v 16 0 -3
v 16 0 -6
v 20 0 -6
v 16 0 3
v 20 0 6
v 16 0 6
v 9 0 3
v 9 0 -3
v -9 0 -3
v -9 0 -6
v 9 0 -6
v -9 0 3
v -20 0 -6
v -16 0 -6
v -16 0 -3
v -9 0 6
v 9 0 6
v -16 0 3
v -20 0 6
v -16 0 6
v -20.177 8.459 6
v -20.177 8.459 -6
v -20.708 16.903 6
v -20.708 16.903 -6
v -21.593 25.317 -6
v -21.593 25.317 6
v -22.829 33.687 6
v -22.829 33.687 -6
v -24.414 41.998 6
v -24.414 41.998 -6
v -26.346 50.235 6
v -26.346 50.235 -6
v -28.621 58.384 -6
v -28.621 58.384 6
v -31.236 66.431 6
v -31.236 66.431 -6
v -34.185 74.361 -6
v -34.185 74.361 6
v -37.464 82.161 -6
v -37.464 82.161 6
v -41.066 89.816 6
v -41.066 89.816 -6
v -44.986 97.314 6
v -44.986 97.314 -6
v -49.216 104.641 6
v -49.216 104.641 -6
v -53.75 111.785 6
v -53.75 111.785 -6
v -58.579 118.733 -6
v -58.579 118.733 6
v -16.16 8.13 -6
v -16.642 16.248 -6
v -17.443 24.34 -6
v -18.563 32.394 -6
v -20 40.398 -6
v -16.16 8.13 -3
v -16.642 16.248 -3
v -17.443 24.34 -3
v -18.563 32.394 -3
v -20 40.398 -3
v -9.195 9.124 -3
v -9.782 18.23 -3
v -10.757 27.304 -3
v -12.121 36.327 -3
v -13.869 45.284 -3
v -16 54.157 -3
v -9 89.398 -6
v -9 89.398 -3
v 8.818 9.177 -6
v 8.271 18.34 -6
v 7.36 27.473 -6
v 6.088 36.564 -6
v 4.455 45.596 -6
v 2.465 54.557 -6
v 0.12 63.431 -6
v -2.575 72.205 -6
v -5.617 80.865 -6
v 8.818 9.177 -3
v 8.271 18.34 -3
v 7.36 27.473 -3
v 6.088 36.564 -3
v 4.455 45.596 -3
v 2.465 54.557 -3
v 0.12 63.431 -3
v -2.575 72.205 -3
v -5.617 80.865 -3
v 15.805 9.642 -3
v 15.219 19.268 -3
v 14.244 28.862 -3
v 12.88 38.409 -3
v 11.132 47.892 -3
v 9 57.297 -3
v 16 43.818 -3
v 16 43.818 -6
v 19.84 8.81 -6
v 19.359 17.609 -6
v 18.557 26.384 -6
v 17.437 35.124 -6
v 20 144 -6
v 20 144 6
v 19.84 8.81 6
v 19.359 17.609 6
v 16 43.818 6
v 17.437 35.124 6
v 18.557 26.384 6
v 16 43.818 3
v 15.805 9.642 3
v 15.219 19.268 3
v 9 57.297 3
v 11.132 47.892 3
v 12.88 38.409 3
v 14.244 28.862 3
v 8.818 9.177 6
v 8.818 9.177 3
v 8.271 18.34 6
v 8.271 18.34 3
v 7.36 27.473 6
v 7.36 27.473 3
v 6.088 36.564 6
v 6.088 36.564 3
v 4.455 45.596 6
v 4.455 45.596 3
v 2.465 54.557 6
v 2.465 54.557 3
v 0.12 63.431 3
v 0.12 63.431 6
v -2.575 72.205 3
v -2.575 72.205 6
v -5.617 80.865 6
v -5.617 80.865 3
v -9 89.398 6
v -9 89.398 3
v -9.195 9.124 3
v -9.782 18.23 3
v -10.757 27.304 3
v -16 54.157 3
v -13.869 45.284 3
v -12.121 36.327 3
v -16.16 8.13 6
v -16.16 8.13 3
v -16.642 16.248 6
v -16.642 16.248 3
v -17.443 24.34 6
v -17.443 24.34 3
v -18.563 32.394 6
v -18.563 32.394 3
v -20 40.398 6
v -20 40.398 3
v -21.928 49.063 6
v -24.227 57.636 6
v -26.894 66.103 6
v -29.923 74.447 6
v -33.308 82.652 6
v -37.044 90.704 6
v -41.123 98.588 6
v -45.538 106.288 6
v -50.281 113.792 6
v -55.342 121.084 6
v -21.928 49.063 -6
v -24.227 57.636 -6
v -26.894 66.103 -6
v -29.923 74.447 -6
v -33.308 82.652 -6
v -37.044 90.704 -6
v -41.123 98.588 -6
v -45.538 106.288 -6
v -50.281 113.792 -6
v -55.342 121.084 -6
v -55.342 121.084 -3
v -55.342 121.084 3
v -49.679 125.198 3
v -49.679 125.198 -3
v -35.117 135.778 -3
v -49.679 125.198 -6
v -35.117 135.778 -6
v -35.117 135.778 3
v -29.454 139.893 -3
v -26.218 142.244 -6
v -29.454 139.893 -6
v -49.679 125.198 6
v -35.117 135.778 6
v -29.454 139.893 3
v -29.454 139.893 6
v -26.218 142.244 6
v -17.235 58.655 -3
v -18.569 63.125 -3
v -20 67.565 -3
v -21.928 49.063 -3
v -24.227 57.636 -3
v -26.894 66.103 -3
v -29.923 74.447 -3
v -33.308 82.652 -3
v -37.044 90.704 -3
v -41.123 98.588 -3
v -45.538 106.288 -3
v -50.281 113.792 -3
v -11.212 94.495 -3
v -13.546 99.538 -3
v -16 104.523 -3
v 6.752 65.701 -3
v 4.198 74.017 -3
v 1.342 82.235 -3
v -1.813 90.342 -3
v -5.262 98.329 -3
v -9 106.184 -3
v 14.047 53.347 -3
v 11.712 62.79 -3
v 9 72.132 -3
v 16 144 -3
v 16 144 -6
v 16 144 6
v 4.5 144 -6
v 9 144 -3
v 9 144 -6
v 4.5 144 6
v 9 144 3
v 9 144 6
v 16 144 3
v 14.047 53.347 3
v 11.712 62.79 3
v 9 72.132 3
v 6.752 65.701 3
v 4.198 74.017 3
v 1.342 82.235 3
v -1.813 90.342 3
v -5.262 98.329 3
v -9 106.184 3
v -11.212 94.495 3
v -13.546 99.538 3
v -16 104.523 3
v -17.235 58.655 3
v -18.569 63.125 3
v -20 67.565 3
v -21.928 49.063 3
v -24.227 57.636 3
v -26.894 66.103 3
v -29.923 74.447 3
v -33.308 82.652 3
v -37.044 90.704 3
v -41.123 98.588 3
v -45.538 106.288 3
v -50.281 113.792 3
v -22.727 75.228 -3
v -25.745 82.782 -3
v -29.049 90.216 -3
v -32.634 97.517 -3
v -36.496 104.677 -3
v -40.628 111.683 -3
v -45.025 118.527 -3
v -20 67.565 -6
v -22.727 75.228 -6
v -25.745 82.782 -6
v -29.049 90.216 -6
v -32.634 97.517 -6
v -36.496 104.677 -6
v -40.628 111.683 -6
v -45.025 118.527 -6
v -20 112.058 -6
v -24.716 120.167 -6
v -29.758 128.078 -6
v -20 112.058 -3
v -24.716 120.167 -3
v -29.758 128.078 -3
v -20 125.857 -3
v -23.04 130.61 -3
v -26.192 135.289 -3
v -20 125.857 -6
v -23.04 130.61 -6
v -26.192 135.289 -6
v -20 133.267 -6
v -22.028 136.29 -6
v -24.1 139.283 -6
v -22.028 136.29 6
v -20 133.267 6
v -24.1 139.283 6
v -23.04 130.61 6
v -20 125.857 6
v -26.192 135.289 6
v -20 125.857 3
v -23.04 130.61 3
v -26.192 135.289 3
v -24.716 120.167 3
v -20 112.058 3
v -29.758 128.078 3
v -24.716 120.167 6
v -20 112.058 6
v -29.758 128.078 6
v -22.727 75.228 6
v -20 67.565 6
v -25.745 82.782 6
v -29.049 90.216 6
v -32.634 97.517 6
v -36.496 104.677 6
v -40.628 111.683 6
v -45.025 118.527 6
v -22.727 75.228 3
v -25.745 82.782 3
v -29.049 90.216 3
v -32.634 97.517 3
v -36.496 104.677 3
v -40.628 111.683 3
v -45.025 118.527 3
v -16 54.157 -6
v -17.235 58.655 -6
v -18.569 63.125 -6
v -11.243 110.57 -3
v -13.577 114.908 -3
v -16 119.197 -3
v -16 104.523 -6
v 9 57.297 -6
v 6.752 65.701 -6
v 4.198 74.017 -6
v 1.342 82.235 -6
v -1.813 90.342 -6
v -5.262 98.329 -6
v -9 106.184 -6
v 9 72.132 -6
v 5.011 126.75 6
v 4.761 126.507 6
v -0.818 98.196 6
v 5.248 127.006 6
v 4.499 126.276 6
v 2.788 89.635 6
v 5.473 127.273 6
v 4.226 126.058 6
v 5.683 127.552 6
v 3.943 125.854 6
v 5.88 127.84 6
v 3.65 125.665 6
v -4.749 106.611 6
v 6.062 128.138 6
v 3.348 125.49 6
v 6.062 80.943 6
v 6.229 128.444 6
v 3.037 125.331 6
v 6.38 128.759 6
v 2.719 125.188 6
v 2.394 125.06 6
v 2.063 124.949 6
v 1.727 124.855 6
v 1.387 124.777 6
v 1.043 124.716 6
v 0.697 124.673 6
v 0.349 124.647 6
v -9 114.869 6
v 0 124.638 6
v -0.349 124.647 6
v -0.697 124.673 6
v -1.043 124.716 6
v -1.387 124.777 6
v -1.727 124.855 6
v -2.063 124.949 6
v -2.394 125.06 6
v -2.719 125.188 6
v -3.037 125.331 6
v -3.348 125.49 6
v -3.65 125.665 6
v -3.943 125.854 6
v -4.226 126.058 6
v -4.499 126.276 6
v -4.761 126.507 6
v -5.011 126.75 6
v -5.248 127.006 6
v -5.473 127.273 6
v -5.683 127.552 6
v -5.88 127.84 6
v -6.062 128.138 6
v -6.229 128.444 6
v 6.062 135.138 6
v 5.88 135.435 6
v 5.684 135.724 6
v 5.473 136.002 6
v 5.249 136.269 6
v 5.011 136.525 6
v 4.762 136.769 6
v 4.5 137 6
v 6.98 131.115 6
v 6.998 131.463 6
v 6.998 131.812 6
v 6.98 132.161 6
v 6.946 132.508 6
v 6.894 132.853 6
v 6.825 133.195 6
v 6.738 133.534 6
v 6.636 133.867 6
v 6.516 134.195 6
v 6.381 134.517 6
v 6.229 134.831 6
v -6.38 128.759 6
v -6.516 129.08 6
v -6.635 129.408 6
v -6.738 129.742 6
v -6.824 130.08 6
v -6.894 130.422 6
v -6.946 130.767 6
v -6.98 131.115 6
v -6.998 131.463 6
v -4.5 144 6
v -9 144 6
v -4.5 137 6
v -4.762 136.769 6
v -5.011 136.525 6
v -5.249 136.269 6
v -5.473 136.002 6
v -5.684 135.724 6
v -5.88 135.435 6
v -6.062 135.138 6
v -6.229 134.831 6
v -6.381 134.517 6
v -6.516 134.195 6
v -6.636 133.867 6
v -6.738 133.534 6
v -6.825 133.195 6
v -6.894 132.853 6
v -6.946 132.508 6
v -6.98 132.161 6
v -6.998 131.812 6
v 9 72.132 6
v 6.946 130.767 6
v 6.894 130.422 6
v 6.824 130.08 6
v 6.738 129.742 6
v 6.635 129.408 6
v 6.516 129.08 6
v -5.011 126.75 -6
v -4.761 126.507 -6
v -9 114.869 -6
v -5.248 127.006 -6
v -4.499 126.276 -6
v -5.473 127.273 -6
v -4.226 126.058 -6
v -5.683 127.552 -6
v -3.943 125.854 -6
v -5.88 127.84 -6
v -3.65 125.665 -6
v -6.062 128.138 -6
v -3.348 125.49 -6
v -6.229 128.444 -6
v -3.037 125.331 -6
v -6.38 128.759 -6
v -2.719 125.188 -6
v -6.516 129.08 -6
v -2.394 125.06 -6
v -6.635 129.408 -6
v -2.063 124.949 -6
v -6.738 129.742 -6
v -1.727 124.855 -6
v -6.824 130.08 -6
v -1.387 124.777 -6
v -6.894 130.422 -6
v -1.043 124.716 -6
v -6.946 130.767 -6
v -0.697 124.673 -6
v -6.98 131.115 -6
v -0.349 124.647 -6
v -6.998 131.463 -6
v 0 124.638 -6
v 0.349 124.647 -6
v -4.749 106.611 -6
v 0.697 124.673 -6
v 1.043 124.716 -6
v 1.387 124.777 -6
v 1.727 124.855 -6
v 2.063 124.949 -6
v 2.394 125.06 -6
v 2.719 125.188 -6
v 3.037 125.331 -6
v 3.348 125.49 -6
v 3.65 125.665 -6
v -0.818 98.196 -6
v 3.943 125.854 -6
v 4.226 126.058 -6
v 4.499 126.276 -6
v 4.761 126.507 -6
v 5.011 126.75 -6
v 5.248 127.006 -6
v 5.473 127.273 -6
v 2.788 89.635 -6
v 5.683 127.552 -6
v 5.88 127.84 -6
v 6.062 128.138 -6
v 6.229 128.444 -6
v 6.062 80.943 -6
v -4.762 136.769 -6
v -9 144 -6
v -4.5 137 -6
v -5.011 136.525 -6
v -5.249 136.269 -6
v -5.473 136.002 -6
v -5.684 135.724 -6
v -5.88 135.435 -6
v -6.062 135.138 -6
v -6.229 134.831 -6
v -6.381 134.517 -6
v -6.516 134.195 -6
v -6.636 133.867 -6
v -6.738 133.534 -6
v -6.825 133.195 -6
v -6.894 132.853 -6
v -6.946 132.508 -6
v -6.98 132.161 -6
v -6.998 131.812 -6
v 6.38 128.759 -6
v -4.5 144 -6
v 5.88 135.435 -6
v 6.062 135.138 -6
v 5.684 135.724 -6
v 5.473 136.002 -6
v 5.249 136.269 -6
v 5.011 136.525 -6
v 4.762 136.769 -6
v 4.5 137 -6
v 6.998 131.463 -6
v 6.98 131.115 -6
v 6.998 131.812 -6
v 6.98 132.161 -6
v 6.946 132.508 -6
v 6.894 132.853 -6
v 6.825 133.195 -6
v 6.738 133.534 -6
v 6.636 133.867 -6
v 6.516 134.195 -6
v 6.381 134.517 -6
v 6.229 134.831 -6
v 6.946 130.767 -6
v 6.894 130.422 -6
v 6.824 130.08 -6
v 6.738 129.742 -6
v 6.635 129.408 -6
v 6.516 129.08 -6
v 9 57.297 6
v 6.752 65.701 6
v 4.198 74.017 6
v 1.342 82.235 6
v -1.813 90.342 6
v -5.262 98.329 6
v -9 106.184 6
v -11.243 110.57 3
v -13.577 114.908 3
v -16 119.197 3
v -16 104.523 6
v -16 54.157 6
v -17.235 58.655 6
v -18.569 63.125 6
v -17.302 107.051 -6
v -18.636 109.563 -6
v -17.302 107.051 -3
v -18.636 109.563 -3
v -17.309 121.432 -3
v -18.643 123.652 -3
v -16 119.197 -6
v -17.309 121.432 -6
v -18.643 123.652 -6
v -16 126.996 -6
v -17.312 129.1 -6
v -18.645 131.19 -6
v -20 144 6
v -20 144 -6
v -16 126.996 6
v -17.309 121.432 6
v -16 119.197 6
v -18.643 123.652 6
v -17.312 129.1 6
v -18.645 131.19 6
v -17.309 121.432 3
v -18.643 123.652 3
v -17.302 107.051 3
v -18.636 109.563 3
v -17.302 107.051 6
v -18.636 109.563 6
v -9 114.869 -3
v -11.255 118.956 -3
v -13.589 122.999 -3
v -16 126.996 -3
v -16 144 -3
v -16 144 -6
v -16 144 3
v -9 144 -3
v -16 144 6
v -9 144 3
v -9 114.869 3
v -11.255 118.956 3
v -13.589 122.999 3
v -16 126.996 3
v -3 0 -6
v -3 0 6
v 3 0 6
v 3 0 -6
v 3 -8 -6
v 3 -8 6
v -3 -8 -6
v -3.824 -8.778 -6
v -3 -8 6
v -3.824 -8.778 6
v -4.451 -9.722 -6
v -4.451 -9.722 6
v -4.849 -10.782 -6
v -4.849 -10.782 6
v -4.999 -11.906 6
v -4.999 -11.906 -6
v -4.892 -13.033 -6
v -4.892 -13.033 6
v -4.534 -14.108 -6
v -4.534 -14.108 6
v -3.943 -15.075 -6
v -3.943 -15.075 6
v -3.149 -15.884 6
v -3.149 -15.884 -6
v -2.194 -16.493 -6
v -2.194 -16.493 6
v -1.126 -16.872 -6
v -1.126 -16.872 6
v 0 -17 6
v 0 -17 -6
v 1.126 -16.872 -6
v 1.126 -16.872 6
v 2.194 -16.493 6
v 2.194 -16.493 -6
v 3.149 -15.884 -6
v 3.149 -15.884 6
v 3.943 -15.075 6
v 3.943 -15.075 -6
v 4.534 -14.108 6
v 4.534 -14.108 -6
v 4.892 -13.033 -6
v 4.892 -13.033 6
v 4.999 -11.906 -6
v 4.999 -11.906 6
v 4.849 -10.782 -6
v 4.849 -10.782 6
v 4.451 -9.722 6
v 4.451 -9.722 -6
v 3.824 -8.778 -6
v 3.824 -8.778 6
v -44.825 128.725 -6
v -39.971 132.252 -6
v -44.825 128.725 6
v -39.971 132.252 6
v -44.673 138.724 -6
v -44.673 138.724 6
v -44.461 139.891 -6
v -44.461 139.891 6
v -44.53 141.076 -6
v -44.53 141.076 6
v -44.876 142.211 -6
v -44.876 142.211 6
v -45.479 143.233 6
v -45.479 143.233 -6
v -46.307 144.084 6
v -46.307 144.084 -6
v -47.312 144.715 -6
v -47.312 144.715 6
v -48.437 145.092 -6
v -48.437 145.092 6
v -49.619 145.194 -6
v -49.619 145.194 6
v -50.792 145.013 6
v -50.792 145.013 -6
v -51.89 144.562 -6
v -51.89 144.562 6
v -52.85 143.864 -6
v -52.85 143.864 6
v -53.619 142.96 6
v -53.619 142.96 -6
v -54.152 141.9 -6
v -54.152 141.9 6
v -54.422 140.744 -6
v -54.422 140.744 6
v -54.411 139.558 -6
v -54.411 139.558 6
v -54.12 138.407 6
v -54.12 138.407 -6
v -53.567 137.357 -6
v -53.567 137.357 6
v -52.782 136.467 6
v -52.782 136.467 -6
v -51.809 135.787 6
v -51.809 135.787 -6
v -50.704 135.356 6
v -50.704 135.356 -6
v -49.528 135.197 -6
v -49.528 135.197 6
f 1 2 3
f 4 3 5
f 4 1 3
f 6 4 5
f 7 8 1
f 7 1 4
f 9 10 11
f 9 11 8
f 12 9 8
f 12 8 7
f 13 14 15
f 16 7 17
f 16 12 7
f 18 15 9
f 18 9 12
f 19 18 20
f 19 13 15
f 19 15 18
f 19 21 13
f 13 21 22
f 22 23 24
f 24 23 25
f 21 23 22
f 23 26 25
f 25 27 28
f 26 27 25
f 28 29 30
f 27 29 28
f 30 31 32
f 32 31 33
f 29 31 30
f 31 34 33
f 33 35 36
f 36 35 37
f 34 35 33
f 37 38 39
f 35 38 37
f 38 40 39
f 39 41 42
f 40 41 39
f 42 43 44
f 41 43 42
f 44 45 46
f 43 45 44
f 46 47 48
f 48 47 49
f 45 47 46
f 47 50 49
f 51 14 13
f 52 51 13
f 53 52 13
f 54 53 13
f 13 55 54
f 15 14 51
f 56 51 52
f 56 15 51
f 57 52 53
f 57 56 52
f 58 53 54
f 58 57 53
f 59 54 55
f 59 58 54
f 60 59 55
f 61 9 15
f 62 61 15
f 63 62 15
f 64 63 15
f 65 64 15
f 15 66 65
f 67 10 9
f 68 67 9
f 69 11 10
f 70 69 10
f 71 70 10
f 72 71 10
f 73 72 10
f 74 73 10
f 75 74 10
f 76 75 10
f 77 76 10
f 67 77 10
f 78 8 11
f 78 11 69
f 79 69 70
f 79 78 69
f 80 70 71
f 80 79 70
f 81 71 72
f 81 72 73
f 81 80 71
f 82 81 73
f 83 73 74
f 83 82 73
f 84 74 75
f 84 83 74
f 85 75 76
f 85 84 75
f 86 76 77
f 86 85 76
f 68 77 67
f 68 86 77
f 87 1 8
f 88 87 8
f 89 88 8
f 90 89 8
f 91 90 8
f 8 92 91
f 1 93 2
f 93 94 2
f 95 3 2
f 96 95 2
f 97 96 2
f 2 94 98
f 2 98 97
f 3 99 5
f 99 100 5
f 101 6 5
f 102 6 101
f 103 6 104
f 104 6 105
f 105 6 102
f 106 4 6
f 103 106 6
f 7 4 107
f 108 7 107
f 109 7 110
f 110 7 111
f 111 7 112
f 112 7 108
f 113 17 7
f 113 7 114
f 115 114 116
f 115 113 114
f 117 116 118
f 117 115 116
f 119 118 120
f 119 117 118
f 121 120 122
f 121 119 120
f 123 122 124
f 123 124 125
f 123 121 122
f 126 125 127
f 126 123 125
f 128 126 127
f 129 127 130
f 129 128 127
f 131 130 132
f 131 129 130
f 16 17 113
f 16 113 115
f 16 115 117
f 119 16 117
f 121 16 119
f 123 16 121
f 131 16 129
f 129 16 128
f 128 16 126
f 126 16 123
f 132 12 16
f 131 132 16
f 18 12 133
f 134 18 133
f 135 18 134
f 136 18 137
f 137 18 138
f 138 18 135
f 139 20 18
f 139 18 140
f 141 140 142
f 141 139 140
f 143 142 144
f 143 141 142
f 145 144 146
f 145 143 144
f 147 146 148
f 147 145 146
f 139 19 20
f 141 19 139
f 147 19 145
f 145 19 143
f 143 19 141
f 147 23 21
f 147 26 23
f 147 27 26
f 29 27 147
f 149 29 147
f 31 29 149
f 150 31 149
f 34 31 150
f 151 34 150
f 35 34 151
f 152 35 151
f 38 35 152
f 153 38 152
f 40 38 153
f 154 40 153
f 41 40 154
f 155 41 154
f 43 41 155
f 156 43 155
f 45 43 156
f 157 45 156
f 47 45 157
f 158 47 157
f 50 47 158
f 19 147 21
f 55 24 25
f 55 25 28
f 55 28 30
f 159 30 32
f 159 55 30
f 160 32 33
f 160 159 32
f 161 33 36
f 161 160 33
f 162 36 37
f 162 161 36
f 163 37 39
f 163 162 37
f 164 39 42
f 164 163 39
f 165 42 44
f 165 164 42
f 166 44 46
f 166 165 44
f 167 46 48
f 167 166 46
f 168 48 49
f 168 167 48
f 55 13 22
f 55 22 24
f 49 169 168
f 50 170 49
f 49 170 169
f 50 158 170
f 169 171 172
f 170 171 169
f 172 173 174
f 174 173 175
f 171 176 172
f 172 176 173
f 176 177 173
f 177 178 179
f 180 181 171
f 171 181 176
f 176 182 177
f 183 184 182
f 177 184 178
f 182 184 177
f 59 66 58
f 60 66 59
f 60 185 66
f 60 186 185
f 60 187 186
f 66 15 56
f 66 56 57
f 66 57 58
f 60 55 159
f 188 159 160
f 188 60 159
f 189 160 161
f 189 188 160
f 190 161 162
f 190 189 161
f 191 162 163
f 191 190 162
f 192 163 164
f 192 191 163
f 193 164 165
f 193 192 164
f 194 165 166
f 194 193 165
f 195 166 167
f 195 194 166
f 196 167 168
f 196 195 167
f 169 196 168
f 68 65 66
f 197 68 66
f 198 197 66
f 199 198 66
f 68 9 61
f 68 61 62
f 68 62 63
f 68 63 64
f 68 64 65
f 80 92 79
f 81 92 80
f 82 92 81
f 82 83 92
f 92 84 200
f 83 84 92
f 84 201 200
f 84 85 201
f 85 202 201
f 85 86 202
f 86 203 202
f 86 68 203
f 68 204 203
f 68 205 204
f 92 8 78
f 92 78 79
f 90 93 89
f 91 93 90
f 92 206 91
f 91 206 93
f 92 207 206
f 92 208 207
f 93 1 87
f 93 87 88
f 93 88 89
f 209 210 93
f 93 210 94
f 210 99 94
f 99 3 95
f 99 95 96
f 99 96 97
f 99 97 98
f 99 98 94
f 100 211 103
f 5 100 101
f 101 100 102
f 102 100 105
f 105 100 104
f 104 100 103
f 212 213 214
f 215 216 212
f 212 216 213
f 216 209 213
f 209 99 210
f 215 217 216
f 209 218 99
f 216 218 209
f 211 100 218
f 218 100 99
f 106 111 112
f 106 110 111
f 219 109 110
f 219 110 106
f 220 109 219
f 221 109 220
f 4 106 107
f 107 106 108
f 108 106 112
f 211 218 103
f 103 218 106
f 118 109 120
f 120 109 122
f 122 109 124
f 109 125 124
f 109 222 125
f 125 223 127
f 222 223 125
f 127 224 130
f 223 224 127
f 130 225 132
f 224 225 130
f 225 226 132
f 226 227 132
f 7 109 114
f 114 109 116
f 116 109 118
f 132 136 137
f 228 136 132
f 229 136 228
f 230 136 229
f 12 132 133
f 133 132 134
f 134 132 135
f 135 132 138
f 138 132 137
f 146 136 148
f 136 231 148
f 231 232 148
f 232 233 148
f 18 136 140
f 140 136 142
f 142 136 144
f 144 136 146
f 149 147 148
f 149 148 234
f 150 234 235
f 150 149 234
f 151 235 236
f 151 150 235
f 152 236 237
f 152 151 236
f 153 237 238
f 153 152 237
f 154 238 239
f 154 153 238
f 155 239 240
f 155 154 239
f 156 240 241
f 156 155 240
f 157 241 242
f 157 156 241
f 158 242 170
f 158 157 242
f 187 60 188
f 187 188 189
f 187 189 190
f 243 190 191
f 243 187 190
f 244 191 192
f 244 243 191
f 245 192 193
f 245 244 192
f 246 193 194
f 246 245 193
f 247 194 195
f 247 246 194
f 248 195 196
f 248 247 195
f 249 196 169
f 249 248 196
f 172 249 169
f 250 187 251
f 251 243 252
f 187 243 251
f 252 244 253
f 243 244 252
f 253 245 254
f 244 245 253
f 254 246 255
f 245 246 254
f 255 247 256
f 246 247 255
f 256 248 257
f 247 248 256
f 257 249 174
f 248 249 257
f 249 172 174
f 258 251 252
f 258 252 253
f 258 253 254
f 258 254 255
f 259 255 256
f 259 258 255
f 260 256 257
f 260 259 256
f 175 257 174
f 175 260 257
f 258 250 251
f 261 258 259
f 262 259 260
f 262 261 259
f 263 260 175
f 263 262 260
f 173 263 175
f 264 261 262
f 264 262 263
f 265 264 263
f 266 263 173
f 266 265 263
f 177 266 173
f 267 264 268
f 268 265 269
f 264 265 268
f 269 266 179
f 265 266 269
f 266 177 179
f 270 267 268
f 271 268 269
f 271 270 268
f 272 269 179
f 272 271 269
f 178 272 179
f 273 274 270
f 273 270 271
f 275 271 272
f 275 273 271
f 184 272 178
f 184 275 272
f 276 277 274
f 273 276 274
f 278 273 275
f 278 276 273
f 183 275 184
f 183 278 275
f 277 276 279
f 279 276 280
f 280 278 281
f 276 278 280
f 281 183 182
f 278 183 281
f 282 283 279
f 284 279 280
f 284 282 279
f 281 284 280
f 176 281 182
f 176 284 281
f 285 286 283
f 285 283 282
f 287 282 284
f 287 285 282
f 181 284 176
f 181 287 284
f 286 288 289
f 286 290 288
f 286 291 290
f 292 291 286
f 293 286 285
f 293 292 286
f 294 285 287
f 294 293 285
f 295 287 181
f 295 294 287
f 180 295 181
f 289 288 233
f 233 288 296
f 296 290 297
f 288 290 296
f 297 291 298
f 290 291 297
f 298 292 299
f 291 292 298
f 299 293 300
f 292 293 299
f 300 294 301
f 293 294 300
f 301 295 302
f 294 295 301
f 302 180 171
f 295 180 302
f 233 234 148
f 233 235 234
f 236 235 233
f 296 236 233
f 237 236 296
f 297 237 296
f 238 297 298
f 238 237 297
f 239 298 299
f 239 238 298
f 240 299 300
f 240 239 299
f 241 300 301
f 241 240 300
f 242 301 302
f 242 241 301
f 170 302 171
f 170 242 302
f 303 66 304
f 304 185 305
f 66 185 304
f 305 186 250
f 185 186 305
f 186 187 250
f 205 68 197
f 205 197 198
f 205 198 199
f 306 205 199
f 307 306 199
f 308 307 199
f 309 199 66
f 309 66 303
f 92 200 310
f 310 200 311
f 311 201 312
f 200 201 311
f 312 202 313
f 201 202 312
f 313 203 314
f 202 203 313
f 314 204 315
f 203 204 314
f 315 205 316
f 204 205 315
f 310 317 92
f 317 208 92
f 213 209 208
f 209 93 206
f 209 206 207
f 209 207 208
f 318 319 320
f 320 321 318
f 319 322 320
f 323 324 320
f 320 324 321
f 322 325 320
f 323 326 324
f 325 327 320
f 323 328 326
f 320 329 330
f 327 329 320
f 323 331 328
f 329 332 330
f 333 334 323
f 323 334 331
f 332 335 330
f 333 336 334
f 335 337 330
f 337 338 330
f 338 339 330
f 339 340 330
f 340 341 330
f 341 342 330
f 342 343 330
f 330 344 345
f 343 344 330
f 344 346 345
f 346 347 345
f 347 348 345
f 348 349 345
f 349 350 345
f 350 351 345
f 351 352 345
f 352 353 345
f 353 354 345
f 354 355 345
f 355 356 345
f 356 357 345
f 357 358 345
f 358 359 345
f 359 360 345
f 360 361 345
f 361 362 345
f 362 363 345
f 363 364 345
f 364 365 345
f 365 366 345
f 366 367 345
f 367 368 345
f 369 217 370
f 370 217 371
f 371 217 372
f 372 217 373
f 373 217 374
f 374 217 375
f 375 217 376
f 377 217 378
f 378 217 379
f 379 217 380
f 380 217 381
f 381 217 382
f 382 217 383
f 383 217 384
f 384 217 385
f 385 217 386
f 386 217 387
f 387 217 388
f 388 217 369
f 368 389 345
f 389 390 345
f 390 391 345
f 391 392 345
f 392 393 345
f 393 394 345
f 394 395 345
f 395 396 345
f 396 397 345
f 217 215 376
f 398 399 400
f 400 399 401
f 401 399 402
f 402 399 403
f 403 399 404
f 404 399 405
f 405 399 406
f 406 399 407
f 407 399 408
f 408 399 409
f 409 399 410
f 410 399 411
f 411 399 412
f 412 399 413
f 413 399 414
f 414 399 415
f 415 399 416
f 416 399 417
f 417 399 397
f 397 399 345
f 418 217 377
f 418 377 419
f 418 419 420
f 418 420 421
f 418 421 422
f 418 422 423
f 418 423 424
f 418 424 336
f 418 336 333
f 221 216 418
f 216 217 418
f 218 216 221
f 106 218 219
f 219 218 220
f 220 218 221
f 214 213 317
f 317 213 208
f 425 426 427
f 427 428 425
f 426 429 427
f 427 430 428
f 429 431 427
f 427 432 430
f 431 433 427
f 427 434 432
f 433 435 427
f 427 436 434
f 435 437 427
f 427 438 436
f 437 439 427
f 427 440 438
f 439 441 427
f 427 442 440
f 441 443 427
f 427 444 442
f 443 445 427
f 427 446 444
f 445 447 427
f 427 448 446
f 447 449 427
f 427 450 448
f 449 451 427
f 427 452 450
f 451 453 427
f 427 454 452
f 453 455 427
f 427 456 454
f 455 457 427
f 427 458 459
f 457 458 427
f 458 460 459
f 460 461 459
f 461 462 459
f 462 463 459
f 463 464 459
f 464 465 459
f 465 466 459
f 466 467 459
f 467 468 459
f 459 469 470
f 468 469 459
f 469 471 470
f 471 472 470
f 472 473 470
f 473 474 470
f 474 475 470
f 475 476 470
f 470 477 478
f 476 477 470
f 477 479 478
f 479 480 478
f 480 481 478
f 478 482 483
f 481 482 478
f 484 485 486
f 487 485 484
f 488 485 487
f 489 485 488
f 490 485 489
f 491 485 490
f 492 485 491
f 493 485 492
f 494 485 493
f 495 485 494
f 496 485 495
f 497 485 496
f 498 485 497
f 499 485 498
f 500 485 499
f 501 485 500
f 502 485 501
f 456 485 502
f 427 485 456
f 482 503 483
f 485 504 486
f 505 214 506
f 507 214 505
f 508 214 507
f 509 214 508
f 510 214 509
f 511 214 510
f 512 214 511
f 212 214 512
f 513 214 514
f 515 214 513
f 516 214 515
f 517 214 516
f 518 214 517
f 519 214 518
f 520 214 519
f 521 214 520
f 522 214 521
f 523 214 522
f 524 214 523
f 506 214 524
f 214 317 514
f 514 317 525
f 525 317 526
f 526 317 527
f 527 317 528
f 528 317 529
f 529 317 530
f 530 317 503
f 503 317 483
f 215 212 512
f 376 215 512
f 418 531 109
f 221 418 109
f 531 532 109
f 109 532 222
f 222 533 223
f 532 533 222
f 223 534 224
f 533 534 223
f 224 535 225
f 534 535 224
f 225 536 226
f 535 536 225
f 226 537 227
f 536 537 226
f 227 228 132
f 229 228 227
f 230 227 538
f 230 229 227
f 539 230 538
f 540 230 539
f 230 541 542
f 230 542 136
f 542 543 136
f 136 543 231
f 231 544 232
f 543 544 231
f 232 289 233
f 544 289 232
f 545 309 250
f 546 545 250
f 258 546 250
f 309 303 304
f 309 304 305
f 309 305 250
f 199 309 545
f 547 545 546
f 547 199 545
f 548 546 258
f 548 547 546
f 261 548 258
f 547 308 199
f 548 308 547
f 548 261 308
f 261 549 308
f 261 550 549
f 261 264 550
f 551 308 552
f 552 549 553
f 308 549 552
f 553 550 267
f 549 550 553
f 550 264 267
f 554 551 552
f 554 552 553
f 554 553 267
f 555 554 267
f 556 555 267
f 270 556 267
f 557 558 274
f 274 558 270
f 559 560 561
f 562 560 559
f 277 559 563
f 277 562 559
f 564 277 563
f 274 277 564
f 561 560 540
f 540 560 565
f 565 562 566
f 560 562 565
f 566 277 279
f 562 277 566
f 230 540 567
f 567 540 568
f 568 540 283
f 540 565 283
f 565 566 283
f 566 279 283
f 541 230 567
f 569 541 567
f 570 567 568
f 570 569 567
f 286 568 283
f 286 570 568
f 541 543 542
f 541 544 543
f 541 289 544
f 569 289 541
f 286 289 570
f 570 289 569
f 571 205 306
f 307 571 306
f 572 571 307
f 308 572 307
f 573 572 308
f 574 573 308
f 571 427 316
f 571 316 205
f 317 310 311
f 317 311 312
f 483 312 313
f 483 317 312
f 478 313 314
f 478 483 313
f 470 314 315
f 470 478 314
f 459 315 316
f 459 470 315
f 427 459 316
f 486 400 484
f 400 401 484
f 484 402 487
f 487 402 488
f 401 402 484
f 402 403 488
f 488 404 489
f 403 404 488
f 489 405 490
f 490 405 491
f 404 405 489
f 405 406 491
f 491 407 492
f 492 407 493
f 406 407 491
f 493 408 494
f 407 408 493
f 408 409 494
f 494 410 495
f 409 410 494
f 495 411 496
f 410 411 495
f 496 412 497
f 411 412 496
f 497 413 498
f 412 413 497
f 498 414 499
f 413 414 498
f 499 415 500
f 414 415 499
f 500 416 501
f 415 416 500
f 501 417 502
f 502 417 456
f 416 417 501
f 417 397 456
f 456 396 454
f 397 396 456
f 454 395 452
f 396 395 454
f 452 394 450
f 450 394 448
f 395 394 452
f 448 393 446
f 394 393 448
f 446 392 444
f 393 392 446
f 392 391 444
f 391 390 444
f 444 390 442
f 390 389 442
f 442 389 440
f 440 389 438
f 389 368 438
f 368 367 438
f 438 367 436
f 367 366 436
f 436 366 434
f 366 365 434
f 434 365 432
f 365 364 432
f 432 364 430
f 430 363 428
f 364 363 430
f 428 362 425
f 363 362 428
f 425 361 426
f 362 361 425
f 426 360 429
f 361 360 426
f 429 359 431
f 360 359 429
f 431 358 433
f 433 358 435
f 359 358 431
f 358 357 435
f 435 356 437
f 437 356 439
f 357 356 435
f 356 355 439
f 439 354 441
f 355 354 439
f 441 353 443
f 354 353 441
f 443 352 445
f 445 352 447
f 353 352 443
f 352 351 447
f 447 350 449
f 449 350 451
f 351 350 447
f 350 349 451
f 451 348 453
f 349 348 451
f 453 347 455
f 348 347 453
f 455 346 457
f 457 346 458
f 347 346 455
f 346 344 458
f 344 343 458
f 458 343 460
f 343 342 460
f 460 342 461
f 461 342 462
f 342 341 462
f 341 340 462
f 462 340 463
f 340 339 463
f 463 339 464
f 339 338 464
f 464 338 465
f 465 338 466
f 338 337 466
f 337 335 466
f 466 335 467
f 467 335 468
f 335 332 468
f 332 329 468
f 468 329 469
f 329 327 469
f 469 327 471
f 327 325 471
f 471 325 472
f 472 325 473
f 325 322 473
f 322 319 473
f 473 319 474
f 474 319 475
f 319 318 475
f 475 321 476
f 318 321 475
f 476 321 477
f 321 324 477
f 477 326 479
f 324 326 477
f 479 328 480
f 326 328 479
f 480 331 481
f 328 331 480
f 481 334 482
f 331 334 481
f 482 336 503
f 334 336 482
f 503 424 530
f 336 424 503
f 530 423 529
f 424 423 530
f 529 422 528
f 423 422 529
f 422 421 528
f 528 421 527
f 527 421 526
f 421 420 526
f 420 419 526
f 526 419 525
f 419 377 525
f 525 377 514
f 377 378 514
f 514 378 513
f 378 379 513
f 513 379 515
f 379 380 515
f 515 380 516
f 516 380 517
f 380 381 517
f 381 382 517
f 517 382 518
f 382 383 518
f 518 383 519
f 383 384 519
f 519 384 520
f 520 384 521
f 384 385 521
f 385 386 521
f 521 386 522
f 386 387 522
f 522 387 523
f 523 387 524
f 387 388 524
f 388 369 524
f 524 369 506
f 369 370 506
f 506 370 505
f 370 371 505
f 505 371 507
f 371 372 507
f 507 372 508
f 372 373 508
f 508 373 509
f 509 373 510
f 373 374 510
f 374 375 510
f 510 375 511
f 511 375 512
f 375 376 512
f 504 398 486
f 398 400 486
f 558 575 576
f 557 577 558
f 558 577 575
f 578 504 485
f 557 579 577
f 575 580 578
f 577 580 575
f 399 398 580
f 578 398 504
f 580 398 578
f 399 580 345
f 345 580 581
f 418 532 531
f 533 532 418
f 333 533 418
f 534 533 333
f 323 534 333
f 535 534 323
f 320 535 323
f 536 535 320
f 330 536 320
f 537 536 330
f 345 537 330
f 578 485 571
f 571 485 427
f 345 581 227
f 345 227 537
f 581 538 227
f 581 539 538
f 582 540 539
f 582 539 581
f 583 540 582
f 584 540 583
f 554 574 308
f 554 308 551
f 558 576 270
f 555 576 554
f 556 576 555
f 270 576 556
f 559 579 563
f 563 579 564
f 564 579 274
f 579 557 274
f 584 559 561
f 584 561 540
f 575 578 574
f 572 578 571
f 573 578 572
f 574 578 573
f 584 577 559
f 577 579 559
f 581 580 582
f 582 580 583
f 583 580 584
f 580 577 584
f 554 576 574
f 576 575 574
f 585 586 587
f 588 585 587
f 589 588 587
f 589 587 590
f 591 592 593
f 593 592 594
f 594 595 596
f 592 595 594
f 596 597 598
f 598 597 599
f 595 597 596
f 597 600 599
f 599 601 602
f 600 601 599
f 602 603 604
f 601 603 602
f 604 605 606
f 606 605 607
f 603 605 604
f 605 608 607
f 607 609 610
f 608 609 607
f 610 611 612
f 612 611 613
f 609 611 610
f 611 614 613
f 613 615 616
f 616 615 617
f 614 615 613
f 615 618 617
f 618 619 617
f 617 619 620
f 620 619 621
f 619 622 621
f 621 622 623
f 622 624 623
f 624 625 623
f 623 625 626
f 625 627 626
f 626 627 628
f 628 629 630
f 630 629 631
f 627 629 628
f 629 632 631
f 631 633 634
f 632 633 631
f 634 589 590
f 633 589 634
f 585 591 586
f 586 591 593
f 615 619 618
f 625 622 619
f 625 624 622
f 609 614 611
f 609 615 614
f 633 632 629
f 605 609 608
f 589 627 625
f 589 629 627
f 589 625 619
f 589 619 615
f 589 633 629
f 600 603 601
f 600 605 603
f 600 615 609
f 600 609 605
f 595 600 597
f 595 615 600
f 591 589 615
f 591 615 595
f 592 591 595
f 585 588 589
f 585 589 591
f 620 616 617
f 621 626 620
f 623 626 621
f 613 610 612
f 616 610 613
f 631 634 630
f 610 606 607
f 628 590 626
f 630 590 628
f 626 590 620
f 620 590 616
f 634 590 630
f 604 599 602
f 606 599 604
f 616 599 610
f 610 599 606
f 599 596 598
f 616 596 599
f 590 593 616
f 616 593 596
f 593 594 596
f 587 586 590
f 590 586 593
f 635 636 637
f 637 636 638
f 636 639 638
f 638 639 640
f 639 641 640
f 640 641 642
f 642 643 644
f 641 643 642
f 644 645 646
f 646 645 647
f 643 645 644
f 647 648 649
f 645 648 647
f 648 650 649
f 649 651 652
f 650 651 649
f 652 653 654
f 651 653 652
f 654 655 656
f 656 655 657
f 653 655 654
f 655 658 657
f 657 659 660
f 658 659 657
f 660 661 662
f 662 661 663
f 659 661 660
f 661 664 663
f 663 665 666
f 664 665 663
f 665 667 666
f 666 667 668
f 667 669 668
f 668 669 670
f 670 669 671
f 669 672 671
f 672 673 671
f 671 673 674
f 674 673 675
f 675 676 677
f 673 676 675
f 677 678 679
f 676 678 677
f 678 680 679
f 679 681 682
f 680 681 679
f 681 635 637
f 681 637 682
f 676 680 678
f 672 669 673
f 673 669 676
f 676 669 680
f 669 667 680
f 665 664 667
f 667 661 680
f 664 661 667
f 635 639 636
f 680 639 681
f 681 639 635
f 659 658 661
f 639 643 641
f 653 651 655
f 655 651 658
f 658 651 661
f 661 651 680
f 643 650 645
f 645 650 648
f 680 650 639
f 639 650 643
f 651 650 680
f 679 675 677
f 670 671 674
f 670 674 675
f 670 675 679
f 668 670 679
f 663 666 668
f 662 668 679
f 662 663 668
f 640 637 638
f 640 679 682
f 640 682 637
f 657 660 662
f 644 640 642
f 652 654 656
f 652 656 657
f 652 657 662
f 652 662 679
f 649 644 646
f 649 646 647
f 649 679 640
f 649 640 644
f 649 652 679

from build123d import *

# Parameters (mm, degrees)
SKETCH004_W       = 7
SKETCH004_H       = 3
SKETCH005_W       = 7
SKETCH005_H       = 3
SKETCH009_W       = 7
SKETCH009_H       = 3
SKETCH010_W       = 7
SKETCH010_H       = 3
POCKET_DEPTH      = 6.001
POCKET_DEPTH_BACK = -6.001
PAD_DEPTH         = 6
PAD002_DEPTH      = 6


with BuildPart() as body:
    # AdditivePipe: sweep along a path in Sketch002
    with BuildLine(Plane.XY) as additivepipe_path:
        ThreePointArc((0, 0), (-10.865453, 68.601773), (-42.398227, 130.488326))
    # Sketch → AdditivePipe (sweep)
    with BuildSketch(Plane.XZ):
        Polygon((-20, 6), (-20, -6), (-16, -6), (-16, -3), (-9, -3), (-9, -6), (9, -6), (9, -3), (16, -3), (16, -6), (20, -6), (20, 6), (16, 6), (16, 3), (9, 3), (9, 6), (-9, 6), (-9, 3), (-16, 3), (-16, 6), align=None)
    sweep(path=additivepipe_path.line)

    # AdditivePipe001: sweep along a path in Sketch001
    with BuildLine(Plane.XY) as additivepipe001_path:
        Line((0, 0), (0, 144))
    # Sketch → AdditivePipe001 (sweep)
    with BuildSketch(Plane.XZ):
        Polygon((-20, 6), (-20, -6), (-16, -6), (-16, -3), (-9, -3), (-9, -6), (9, -6), (9, -3), (16, -3), (16, -6), (20, -6), (20, 6), (16, 6), (16, 3), (9, 3), (9, 6), (-9, 6), (-9, 3), (-16, 3), (-16, 6), align=None)
    sweep(path=additivepipe001_path.line)

    # SubtractivePipe: sweep along a path in Sketch001
    with BuildLine(Plane.XY) as subtractivepipe_path:
        Line((0, 0), (0, 144))
    # Sketch004 → SubtractivePipe (sweep, cut)
    with BuildSketch(Plane.XZ):
        with Locations((-12.5, 4.5)):
            Rectangle(SKETCH004_W, SKETCH004_H)
    sweep(path=subtractivepipe_path.line, mode=Mode.SUBTRACT)

    # SubtractivePipe001: sweep along a path in Sketch002
    with BuildLine(Plane.XY) as subtractivepipe001_path:
        ThreePointArc((0, 0), (-10.865453, 68.601773), (-42.398227, 130.488326))
    # Sketch004 → SubtractivePipe001 (sweep, cut)
    with BuildSketch(Plane.XZ):
        with Locations((-12.5, 4.5)):
            Rectangle(SKETCH004_W, SKETCH004_H)
    sweep(path=subtractivepipe001_path.line, mode=Mode.SUBTRACT)

    # SubtractivePipe002: sweep along a path in Sketch002
    with BuildLine(Plane.XY) as subtractivepipe002_path:
        ThreePointArc((0, 0), (-10.865453, 68.601773), (-42.398227, 130.488326))
    # Sketch005 (on Face1 of SubtractivePipe001) → SubtractivePipe002 (sweep, cut)
    with BuildSketch(Plane.XZ):
        with Locations((12.5, 4.5)):
            Rectangle(SKETCH005_W, SKETCH005_H)
    sweep(path=subtractivepipe002_path.line, mode=Mode.SUBTRACT)

    # SubtractivePipe003: sweep along a path in Sketch001
    with BuildLine(Plane.XY) as subtractivepipe003_path:
        Line((0, 0), (0, 144))
    # Sketch005 (on Face1 of SubtractivePipe001) → SubtractivePipe003 (sweep, cut)
    with BuildSketch(Plane.XZ):
        with Locations((12.5, 4.5)):
            Rectangle(SKETCH005_W, SKETCH005_H)
    subtractivepipe003 = sweep(path=subtractivepipe003_path.line, mode=Mode.SUBTRACT)

    # Mirrored: SubtractivePipe003 across XY
    add(subtractivepipe003.mirror(Plane.XY), mode=Mode.SUBTRACT)

    # SubtractivePipe004: sweep along a path in Sketch002
    with BuildLine(Plane.XY) as subtractivepipe004_path:
        ThreePointArc((0, 0), (-10.865453, 68.601773), (-42.398227, 130.488326))
    # Sketch009 → SubtractivePipe004 (sweep, cut)
    with BuildSketch(Plane.XZ):
        with Locations((-12.5, -4.5)):
            Rectangle(SKETCH009_W, SKETCH009_H)
    sweep(path=subtractivepipe004_path.line, mode=Mode.SUBTRACT)

    # SubtractivePipe005: sweep along a path in Sketch001
    with BuildLine(Plane.XY) as subtractivepipe005_path:
        Line((0, 0), (0, 144))
    # Sketch009 → SubtractivePipe005 (sweep, cut)
    with BuildSketch(Plane.XZ):
        with Locations((-12.5, -4.5)):
            Rectangle(SKETCH009_W, SKETCH009_H)
    sweep(path=subtractivepipe005_path.line, mode=Mode.SUBTRACT)

    # SubtractivePipe006: sweep along a path in Sketch002
    with BuildLine(Plane.XY) as subtractivepipe006_path:
        ThreePointArc((0, 0), (-10.865453, 68.601773), (-42.398227, 130.488326))
    # Sketch010 (on Face1 of SubtractivePipe005) → SubtractivePipe006 (sweep, cut)
    with BuildSketch(Plane.XZ):
        with Locations((12.5, -4.5)):
            Rectangle(SKETCH010_W, SKETCH010_H)
    sweep(path=subtractivepipe006_path.line, mode=Mode.SUBTRACT)

    # Sketch013 → Pocket (cut, two sides)
    with BuildSketch(Plane.XY) as pocket_sk:
        with BuildLine():
            Line((-4.5, 144), (4.5, 144))
            Line((4.5, 144), (4.5, 137))
            ThreePointArc((-4.5, 137), (0, 124.638097), (4.5, 137))
            Line((-4.5, 144), (-4.5, 137))
        make_face()
    extrude(amount=-POCKET_DEPTH, mode=Mode.SUBTRACT)
    extrude(pocket_sk.sketch, amount=-POCKET_DEPTH_BACK, mode=Mode.SUBTRACT)


with BuildPart() as body001:
    # Sketch008 → Pad (new body, symmetric)
    with BuildSketch(Plane.XY):
        with BuildLine():
            Line((-3, 0), (3, 0))
            Line((3, 0), (3, -8))
            ThreePointArc((-3, -8), (0, -17), (3, -8))
            Line((-3, 0), (-3, -8))
        make_face()
    extrude(amount=PAD_DEPTH, both=True)


with BuildPart() as body003:
    # Sketch012 → Pad002 (new body, symmetric)
    with BuildSketch(Plane.XY):
        with BuildLine():
            Line((-44.825278, 128.72497), (-39.971176, 132.251682))
            Line((-39.971176, 132.251682), (-44.673458, 138.723818))
            ThreePointArc((-44.673458, 138.723818), (-52.390577, 144.241615), (-49.52756, 135.197106))
            Line((-44.825278, 128.72497), (-49.52756, 135.197106))
        make_face()
    extrude(amount=PAD002_DEPTH, both=True)


solid = Compound([body.part, body001.part, body003.part])
